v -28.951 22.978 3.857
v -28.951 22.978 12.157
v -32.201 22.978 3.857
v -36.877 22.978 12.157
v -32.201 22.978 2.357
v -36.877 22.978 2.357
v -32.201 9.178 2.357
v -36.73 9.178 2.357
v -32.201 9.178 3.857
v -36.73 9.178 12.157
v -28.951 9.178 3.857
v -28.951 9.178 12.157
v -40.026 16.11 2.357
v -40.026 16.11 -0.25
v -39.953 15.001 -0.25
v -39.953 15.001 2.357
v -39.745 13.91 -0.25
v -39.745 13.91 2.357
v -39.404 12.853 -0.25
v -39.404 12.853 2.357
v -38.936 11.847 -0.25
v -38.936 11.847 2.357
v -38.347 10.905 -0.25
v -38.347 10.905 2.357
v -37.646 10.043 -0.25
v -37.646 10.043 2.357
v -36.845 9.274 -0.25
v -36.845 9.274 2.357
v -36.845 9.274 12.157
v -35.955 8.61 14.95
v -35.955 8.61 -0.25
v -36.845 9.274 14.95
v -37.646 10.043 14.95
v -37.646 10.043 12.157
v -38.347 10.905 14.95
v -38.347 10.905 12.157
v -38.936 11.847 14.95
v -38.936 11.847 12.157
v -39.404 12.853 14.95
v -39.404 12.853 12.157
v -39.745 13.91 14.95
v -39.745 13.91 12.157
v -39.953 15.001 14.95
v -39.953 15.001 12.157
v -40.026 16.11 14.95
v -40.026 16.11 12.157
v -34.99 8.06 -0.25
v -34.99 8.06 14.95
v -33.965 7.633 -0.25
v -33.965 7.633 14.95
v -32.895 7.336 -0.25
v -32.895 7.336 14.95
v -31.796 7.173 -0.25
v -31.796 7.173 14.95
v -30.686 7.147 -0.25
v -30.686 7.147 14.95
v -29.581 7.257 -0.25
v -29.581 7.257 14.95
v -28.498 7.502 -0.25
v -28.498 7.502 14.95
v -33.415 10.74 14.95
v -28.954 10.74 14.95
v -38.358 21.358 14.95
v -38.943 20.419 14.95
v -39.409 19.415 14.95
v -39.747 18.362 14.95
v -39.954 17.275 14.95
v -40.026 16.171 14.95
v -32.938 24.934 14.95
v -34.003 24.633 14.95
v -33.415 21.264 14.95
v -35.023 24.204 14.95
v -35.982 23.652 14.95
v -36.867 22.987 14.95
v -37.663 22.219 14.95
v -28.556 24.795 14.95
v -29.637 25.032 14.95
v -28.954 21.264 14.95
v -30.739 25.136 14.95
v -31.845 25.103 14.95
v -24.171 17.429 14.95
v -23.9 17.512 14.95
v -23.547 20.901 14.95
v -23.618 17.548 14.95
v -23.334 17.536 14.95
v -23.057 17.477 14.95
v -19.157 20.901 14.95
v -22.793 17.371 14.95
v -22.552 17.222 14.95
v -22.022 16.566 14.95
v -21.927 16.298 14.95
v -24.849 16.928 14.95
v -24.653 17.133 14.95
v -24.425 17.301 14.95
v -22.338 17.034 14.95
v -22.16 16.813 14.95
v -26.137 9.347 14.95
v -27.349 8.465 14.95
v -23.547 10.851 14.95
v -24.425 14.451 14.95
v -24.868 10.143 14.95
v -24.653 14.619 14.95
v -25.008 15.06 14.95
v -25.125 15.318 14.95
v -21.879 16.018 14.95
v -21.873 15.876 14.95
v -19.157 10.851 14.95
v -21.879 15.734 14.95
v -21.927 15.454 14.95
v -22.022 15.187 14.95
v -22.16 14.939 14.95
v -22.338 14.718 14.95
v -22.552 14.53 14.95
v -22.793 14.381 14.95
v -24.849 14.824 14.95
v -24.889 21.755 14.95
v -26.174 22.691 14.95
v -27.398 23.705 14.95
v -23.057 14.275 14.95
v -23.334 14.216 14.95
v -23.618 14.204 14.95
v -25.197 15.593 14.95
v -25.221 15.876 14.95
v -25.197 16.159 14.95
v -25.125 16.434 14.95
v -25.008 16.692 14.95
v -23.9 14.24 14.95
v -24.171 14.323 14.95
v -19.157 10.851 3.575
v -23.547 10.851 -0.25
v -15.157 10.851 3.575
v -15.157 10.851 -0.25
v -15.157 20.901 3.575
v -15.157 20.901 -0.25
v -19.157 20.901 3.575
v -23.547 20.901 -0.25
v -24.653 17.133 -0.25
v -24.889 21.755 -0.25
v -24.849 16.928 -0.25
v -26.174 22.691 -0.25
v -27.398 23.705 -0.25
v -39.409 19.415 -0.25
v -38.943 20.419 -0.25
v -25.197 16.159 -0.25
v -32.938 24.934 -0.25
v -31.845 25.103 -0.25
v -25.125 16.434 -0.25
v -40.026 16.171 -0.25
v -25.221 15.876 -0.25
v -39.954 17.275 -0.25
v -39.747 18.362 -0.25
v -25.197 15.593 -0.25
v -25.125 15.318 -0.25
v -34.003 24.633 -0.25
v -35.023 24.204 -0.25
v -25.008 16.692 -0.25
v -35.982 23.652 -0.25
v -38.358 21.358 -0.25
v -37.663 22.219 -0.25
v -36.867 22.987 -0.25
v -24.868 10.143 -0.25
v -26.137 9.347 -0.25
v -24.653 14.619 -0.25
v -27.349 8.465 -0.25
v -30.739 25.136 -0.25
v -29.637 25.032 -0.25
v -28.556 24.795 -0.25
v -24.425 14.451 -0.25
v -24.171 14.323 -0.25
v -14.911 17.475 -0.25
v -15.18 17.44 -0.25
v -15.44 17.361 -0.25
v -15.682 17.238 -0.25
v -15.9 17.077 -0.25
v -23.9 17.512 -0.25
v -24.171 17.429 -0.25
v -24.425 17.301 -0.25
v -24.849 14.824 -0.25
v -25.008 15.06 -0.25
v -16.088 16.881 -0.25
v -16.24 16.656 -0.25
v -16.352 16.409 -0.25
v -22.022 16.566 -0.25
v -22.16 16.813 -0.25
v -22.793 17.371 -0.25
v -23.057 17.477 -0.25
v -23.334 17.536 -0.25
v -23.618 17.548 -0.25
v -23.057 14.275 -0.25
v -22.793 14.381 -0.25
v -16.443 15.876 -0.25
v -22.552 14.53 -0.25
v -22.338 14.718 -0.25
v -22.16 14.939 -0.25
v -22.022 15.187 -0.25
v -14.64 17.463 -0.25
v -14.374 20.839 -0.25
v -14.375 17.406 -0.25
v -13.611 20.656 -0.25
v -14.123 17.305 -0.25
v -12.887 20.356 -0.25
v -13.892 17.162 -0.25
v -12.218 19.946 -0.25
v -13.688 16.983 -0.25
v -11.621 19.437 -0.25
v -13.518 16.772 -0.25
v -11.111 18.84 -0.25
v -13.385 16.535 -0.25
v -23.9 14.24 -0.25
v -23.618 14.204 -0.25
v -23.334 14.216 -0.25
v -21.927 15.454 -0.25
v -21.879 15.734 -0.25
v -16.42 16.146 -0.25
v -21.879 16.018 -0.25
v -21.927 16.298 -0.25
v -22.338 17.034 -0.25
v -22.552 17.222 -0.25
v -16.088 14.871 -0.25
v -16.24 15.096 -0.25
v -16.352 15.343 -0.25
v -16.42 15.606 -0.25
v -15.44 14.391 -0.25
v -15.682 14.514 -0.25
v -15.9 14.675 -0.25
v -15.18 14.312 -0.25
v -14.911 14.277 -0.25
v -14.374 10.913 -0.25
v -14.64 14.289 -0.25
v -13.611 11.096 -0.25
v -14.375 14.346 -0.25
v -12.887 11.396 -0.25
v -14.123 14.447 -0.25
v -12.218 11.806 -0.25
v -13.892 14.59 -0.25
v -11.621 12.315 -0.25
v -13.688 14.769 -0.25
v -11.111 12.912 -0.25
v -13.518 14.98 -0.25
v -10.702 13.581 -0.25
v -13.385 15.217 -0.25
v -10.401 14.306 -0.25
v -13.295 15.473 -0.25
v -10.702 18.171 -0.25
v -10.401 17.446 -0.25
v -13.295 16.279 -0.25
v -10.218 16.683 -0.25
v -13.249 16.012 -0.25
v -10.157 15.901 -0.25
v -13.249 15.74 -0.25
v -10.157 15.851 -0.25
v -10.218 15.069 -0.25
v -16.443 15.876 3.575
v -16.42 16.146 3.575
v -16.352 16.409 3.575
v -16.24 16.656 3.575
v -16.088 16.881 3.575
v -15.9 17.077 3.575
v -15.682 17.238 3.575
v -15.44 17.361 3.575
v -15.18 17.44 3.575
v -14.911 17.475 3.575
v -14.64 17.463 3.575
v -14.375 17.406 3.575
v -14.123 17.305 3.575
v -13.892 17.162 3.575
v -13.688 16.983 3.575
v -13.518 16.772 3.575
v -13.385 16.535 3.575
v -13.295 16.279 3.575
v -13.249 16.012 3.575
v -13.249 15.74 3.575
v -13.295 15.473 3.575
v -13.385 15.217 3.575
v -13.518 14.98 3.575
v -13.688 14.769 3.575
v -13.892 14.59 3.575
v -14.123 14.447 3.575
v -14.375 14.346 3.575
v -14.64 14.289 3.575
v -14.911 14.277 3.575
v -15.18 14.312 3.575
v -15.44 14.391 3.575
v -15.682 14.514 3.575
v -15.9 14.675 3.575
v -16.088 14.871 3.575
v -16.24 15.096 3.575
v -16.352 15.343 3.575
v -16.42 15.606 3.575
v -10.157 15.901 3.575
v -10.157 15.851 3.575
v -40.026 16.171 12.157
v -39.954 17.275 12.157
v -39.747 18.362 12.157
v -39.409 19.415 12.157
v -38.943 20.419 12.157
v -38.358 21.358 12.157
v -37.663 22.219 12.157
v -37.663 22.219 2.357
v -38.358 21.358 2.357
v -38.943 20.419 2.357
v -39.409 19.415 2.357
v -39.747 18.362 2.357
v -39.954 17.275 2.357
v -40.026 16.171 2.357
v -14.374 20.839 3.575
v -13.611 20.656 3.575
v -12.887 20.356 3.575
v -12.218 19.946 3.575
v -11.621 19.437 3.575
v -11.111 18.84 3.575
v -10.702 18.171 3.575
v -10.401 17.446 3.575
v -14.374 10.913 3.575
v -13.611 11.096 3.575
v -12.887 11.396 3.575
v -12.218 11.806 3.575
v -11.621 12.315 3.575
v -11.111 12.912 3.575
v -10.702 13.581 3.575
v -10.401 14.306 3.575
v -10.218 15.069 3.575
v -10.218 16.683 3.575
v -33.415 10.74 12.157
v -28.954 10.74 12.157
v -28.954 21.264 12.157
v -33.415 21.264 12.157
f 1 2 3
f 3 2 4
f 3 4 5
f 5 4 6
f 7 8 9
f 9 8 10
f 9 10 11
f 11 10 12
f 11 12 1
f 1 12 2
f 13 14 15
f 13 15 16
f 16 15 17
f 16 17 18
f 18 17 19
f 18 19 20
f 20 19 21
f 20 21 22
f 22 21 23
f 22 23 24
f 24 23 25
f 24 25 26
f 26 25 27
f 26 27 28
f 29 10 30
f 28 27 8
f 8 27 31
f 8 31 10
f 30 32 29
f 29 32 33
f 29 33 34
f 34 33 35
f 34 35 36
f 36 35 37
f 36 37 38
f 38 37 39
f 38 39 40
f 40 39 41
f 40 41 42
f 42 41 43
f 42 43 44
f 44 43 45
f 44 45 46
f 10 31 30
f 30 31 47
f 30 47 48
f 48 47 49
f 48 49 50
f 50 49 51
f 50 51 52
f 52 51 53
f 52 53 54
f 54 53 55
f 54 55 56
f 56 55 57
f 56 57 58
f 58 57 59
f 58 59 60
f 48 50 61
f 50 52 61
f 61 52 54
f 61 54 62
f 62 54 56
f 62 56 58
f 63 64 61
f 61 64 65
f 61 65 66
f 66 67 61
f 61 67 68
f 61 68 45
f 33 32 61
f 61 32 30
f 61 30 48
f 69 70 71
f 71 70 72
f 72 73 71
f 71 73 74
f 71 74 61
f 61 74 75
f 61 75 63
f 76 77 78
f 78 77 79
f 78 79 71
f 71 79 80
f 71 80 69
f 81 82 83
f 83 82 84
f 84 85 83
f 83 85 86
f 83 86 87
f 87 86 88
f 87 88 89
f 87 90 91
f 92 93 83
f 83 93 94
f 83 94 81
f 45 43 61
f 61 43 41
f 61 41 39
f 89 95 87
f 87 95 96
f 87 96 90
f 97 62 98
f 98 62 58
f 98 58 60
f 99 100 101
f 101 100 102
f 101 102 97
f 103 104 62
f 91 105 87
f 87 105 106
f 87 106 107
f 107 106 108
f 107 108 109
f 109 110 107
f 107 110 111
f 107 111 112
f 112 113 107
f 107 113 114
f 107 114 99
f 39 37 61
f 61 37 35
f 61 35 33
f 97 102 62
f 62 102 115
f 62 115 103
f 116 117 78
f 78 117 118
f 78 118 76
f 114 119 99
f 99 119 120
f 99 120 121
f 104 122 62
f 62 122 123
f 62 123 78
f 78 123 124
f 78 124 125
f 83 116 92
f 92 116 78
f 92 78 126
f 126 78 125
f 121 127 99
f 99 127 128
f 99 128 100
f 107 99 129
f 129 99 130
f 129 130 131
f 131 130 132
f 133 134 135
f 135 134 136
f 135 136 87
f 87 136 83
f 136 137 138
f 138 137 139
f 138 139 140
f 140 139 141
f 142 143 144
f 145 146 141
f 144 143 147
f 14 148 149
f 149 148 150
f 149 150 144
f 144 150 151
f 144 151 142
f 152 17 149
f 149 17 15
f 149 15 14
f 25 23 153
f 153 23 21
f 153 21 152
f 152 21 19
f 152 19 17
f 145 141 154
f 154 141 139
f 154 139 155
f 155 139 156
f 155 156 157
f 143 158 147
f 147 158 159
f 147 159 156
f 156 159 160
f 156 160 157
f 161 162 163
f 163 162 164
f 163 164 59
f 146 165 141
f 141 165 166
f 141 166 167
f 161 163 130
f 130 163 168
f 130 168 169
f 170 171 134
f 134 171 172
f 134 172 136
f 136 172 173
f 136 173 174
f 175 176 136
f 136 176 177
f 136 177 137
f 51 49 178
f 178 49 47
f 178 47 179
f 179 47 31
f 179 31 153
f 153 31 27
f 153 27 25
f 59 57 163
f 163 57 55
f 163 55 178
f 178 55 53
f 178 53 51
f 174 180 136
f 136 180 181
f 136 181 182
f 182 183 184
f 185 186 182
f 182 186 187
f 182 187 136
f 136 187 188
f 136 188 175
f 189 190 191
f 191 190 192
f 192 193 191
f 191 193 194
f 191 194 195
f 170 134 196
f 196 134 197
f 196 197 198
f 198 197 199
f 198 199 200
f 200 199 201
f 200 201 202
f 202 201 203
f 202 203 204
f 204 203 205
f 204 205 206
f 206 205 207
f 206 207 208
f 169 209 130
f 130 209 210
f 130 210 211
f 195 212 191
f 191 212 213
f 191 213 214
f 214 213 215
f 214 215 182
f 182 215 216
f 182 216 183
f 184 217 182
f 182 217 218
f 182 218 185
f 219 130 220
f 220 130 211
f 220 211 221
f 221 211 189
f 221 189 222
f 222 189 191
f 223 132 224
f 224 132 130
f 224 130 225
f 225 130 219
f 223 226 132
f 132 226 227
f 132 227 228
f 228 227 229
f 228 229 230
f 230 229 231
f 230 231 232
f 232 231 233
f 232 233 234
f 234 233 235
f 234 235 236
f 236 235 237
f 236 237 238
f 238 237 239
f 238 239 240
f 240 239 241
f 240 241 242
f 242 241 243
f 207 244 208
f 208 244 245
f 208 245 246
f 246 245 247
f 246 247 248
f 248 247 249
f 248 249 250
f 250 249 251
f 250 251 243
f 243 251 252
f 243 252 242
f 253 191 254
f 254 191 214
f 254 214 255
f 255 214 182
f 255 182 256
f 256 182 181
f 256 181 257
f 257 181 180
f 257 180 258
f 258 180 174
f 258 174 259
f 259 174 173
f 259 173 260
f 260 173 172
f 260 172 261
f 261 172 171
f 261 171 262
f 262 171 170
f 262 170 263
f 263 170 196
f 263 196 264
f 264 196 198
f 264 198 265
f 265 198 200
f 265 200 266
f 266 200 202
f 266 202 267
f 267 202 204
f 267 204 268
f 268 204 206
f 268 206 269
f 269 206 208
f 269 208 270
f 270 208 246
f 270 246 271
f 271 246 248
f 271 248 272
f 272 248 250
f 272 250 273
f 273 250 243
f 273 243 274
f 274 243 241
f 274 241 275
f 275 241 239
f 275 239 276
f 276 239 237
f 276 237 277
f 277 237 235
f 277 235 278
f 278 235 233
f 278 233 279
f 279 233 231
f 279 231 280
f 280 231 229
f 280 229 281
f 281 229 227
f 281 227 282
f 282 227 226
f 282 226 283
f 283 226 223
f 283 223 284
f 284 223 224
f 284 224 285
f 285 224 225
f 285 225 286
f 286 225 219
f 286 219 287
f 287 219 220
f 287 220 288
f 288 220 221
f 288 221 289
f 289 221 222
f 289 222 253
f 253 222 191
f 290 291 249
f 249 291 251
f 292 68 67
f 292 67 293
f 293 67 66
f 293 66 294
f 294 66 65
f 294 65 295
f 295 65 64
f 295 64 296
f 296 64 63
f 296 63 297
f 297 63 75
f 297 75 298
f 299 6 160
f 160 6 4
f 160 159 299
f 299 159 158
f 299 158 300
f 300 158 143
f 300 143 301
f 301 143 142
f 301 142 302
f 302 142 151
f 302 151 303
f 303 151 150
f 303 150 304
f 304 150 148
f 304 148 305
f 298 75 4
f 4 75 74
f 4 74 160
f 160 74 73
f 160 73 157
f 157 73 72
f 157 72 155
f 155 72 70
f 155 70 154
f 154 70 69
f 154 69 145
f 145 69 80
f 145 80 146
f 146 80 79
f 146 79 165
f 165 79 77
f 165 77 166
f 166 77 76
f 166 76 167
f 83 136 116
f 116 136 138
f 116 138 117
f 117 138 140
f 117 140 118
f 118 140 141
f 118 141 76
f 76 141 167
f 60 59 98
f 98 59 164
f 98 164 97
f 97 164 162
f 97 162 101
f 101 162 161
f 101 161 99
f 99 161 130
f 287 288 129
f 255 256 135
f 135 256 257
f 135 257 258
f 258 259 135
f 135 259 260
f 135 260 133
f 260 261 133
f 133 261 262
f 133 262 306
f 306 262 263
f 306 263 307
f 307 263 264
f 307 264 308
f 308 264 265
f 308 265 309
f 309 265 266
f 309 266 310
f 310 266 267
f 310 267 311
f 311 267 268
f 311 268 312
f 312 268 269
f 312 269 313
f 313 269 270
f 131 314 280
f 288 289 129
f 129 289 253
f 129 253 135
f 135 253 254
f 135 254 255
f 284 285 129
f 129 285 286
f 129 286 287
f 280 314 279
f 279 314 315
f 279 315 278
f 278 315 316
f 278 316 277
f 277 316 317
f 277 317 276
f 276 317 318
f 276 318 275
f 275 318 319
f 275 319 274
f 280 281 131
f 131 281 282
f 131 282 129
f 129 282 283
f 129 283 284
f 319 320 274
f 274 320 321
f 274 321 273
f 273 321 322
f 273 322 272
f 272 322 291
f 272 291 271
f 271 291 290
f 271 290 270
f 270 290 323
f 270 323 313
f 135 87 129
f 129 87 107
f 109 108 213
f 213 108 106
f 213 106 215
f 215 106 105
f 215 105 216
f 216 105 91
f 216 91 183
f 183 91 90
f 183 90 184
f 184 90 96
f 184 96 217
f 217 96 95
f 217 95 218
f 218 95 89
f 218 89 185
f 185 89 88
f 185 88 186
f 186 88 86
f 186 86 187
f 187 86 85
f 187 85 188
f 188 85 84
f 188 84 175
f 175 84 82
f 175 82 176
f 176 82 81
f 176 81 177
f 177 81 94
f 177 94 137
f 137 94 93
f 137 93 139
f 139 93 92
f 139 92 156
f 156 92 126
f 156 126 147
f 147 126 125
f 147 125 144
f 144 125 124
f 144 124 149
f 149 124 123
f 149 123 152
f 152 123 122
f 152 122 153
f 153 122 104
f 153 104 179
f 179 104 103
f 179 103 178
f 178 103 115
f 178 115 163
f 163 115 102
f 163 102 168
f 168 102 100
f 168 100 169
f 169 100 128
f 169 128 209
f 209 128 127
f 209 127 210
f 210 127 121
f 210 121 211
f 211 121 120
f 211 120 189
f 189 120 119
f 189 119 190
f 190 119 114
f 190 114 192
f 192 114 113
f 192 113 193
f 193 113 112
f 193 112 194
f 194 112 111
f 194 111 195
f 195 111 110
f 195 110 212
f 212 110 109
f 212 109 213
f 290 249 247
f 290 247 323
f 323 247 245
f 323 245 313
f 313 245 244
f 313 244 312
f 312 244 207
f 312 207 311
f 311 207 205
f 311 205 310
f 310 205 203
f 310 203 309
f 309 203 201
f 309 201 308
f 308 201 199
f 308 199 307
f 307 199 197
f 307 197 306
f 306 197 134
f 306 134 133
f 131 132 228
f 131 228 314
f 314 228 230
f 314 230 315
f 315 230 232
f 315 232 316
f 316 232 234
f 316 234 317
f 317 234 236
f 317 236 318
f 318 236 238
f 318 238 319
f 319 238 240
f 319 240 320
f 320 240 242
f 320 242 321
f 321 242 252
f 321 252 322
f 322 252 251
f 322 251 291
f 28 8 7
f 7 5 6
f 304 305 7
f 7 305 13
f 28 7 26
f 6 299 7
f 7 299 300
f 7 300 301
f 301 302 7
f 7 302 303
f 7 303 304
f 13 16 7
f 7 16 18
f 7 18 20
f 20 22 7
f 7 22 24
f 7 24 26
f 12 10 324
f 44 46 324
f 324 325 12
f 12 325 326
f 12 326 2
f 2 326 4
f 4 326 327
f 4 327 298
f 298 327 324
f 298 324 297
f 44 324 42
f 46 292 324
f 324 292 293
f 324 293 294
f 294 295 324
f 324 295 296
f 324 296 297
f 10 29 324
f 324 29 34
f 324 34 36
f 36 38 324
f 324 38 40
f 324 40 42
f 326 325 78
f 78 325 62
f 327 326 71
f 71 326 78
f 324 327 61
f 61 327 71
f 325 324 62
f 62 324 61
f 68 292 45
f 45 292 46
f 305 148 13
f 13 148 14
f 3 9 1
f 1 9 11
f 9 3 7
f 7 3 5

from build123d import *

# Parameters (mm, degrees)
EXTRUDE_1_DEPTH      = 2.2
EXTRUDE_2_DEPTH      = 3.25
SKETCH_3_W           = 50
SKETCH_3_H           = 10.05
EXTRUDE_3_DEPTH      = 3.25
CUT_EXTRUDE_1_DEPTH  = 30
EXTRUDE_4_REACH      = 56.389
SKETCH_6_R           = 5.025
SKETCH_8_R           = 1.675
SKETCH_8_R_2         = 0.84
CUT_EXTRUDE_3_DEPTH  = 55
SKETCH_9_W           = 28.473000816
SKETCH_9_H           = 14.532409192
CUT_EXTRUDE_4_DEPTH  = 3
EXTRUDE_5_DEPTH      = 2.45
SKETCH_11_W          = 12.614203935
SKETCH_11_H          = 10.05
EXTRUDE_6_DEPTH      = 3
SKETCH_12_W          = 36.628466797
SKETCH_12_H          = 15.348537224
CUT_EXTRUDE_5_DEPTH  = 10
SKETCH_13_W          = 5.35
SKETCH_13_H          = 5.35
CUT_EXTRUDE_6_DEPTH  = 14
SKETCH_14_R          = 1.1
CUT_EXTRUDE_7_DEPTH  = 14
SKETCH_15_R          = 1.1
CUT_EXTRUDE_8_DEPTH  = 10
SKETCH_16_R          = 1.625
EXTRUDE_7_DEPTH      = 5.7
SKETCH_17_W          = 19.923143876
SKETCH_17_H          = 15.083058075
CUT_EXTRUDE_9_DEPTH  = 3
SKETCH_18_R          = 1.675
SKETCH_18_R_2        = 1.6
CUT_EXTRUDE_10_DEPTH = 6
CUT_EXTRUDE_11_DEPTH = 10
EXTRUDE_8_DEPTH      = 9.5
EXTRUDE_9_DEPTH      = 15.2
SKETCH_23_W          = 14.793785908
SKETCH_23_H          = 11.59723546
CUT_EXTRUDE_12_DEPTH = 9
SKETCH_25_R          = 1.6
SKETCH_25_R_2        = 1.673969756
CUT_EXTRUDE_13_DEPTH = 20
FILLET_1_R           = 5
SKETCH_26_W          = 0.925753523
SKETCH_26_H          = 16.271734405
EXTRUDE_10_DEPTH     = 15
SKETCH_27_W          = 9.8
SKETCH_27_H          = 13.8
CUT_EXTRUDE_14_DEPTH = 12
SKETCH_28_W          = 4.460954542
SKETCH_28_H          = 10.524407061
CUT_EXTRUDE_15_DEPTH = 12
SKETCH_29_W          = 0.925753523
SKETCH_29_H          = 16.271734405
CUT_EXTRUDE_16_DEPTH = 18
SKETCH_30_W          = 1.5
SKETCH_30_H          = 13.8
EXTRUDE_11_DEPTH     = 3.25


with BuildPart() as part:
    # 草图1 → 凸台-拉伸1 (new body)
    with BuildSketch(Plane.XY):
        with BuildLine():
            Line((1.539836705, 12.851012384), (15.55297303, 14.251012384))
            ThreePointArc((15.55297303, 14.251012384), (17.193415997, 16.063512384), (15.55297303, 17.876012384))
            Line((15.55297303, 17.876012384), (1.500532553, 18.901012384))
            ThreePointArc((1.500532553, 18.901012384), (0.527100583, 19.384612538), (-0.54702697, 19.551012384))
            Line((-0.54702697, 19.551012384), (-0.54702697, 20.901012384))
            Line((-0.54702697, 20.901012384), (19.51277613, 20.901012384))
            Line((19.51277613, 20.901012384), (41.45297303, 20.901012384))
            Line((41.45297303, 20.901012384), (41.45297303, 10.851012384))
            Line((41.45297303, 10.851012384), (-0.54702697, 10.851012384))
            Line((-0.54702697, 10.851012384), (-0.54702697, 12.201012384))
            ThreePointArc((-0.54702697, 12.201012384), (0.54584768, 12.367273294), (1.539836705, 12.851012384))
        make_face()
    extrude(amount=EXTRUDE_1_DEPTH)

    # 草图2 → 凸台-拉伸2 (add)
    with BuildSketch(Plane(origin=(0, 0, 0), x_dir=(-1, 0, 0), z_dir=(0, 0, -1))):
        Polygon((-19.51277613, 10.851012384), (-49.45297303, 10.851012384), (-49.45297303, 20.901012384), (-19.51277613, 20.901012384), (0.54702697, 20.901012384), (0.54702697, 10.851012384), align=None)
    extrude(amount=EXTRUDE_2_DEPTH)

    # 草图3 → 凸台-拉伸3 (add)
    with BuildSketch(Plane.XY.offset(2.2)):
        with Locations((24.45297303, 15.876012384)):
            Rectangle(SKETCH_3_W, SKETCH_3_H)
    extrude(amount=EXTRUDE_3_DEPTH)

    # 草图4 → 切除-拉伸1 (cut, symmetric)
    with BuildSketch(Plane.XY):
        with BuildLine():
            Line((-0.54702697, 19.551012384), (-2.235397712, 16.616091152))
            Line((-2.235397712, 16.616091152), (-1.110896638, 12.310548833))
            Line((-1.110896638, 12.310548833), (-0.54702697, 12.201012384))
            ThreePointArc((-0.54702697, 12.201012384), (0.54584768, 12.367273294), (1.539836705, 12.851012384))
            ThreePointArc((1.539836705, 12.851012384), (2.773180655, 15.88415254), (1.500532553, 18.901012384))
            ThreePointArc((1.500532553, 18.901012384), (0.527100583, 19.384612538), (-0.54702697, 19.551012384))
        make_face()
    extrude(amount=CUT_EXTRUDE_1_DEPTH, both=True, mode=Mode.SUBTRACT)

    # 凸台-拉伸4: up to this face of the body (flat: up to its plane)
    extrude_4_end = Plane(part.part.faces().sort_by_distance((25.407741746, 15.876338503, 5.45))[0])
    # 草图6 → 凸台-拉伸4 (add, up to the picked face)
    with BuildSketch(Plane(origin=(0, 0, -3.25), x_dir=(-1, 0, 0), z_dir=(0, 0, -1)), mode=Mode.PRIVATE) as extrude_4_sk1:
        with Locations(Location((-49.45297303, 15.876012384, 0), (0, 0, 90))):
            Circle(SKETCH_6_R)
    extrude_4_tool1 = split(extrude(extrude_4_sk1.sketch, amount=-EXTRUDE_4_REACH, mode=Mode.PRIVATE), bisect_by=extrude_4_end, keep=Keep.BOTH, mode=Mode.PRIVATE)
    add(extrude_4_tool1.solids().sort_by(Axis((49.452973, 15.876012, -3.25), (0, 0, 1)))[0])

    # 草图8 → 切除-拉伸3 (cut)
    with BuildSketch(Plane(origin=(0, 0, -3.25), x_dir=(-1, 0, 0), z_dir=(0, 0, -1))):
        with Locations((-49.45297303, 15.876012384)):
            Circle(SKETCH_8_R)
        with Locations(Location((-7.95297303, 15.856360308, 0), (0, 0, 180))):
            Circle(SKETCH_8_R_2)
    extrude(amount=-CUT_EXTRUDE_3_DEPTH, mode=Mode.SUBTRACT)

    # 草图9 → 切除-拉伸4 (cut)
    with BuildSketch(Plane(origin=(0, 0, -3.25), x_dir=(-1, 0, 0), z_dir=(0, 0, -1))):
        with Locations((-42.648638606, 15.039406696)):
            Rectangle(SKETCH_9_W, SKETCH_9_H)
    extrude(amount=-CUT_EXTRUDE_4_DEPTH, mode=Mode.SUBTRACT)

    # 草图10 → 凸台-拉伸5 (add)
    with BuildSketch(Plane(origin=(0, 0, 2.2), x_dir=(-1, 0, 0), z_dir=(0, 0, -1))):
        with BuildLine():
            Line((-49.45297303, 20.901012384), (-38.466384114, 20.901012384))
            Line((-38.466384114, 20.901012384), (-38.466384114, 10.851012384))
            Line((-38.466384114, 10.851012384), (-49.45297303, 10.851012384))
            ThreePointArc((-49.45297303, 10.851012384), (-46.217908976, 15.876012384), (-49.45297303, 20.901012384))
        make_face()
    extrude(amount=EXTRUDE_5_DEPTH)

    # 草图11 → 凸台-拉伸6 (add)
    with BuildSketch(Plane(origin=(0, 0, -3.25), x_dir=(-1, 0, 0), z_dir=(0, 0, -1))):
        with Locations((-32.625453647, 15.876012384)):
            Rectangle(SKETCH_11_W, SKETCH_11_H)
    extrude(amount=-EXTRUDE_6_DEPTH)

    # 草图12 → 切除-拉伸5 (cut)
    with BuildSketch(Plane(origin=(0, 0, -3.25), x_dir=(-1, 0, 0), z_dir=(0, 0, -1))):
        with Locations((-5.618322216, 15.103365543)):
            Rectangle(SKETCH_12_W, SKETCH_12_H)
    extrude(amount=-CUT_EXTRUDE_5_DEPTH, mode=Mode.SUBTRACT)

    # 草图13 → 切除-拉伸6 (cut)
    with BuildSketch(Plane.ZY.offset(-23.932555614)):
        with Locations((1.1, 16.124405573)):
            Rectangle(SKETCH_13_W, SKETCH_13_H)
    extrude(amount=-CUT_EXTRUDE_6_DEPTH, mode=Mode.SUBTRACT)

    # 草图14 → 切除-拉伸7 (cut)
    with BuildSketch(Plane(origin=(0, 20.901012384, 0), x_dir=(1, 0, 0), z_dir=(0, 1, 0))):
        with Locations(Location((30.538219594, -1.1, 0), (0, 0, 270))):
            Circle(SKETCH_14_R)
    extrude(amount=-CUT_EXTRUDE_7_DEPTH, mode=Mode.SUBTRACT)

    # 草图15 → 切除-拉伸8 (cut)
    with BuildSketch(Plane.XY.offset(5.45)):
        with Locations((36.879929969, 15.882801083)):
            Circle(SKETCH_15_R)
    extrude(amount=-CUT_EXTRUDE_8_DEPTH, mode=Mode.SUBTRACT)

    # 草图16 → 凸台-拉伸7 (add)
    with BuildSketch(Plane(origin=(0, 0, -0.25), x_dir=(-1, 0, 0), z_dir=(0, 0, -1))):
        with BuildLine():
            Line((-49.45297303, 20.901012384), (23.54702697, 20.901012384))
            ThreePointArc((23.54702697, 20.901012384), (28.57202697, 15.876012384), (23.54702697, 10.851012384))
            Line((23.54702697, 10.851012384), (-49.45297303, 10.851012384))
            Line((-49.45297303, 10.851012384), (-49.45297303, 20.901012384))
        make_face()
        with Locations((23.54702697, 15.876012384)):
            Circle(SKETCH_16_R, mode=Mode.SUBTRACT)
    extrude(amount=-EXTRUDE_7_DEPTH)

    # 草图17 → 切除-拉伸9 (cut)
    with BuildSketch(Plane(origin=(0, 0, -3.25), x_dir=(-1, 0, 0), z_dir=(0, 0, -1))):
        with Locations((-33.178239607, 16.007261263)):
            Rectangle(SKETCH_17_W, SKETCH_17_H)
    extrude(amount=-CUT_EXTRUDE_9_DEPTH, mode=Mode.SUBTRACT)

    # 草图18 → 切除-拉伸10 (cut)
    with BuildSketch(Plane(origin=(0, 0, -0.25), x_dir=(-1, 0, 0), z_dir=(0, 0, -1))):
        with Locations(Location((-49.45297303, 15.876012384, 0), (0, 0, 180))):
            Circle(SKETCH_18_R)
        with Locations((14.84318256, 15.876012384)):
            Circle(SKETCH_18_R_2)
        with BuildLine():
            Line((-31.661597205, 17.303258867), (8.461046927, 17.303258867))
            ThreePointArc((8.461046927, 17.303258867), (9.88829341, 15.876012384), (8.461046927, 14.448765901))
            Line((8.461046927, 14.448765901), (-31.661597205, 14.448765901))
            ThreePointArc((-31.661597205, 14.448765901), (-33.088843687, 15.876012384), (-31.661597205, 17.303258867))
        make_face()
    extrude(amount=-CUT_EXTRUDE_10_DEPTH, mode=Mode.SUBTRACT)

    # 草图19 → 切除-拉伸11 (cut)
    with BuildSketch(Plane(origin=(0, 0, -0.25), x_dir=(-1, 0, 0), z_dir=(0, 0, -1))):
        Polygon((12.697516125, 20.901012384), (-60.999534113, 39.375054119), (-58.738783937, -10.22846445), (12.697516125, 10.851012384), (10.156545193, 10.851012384), (10.156545193, 20.901012384), align=None)
    extrude(amount=-CUT_EXTRUDE_11_DEPTH, mode=Mode.SUBTRACT)

    # 草图21 → 凸台-拉伸8 (add)
    with BuildSketch(Plane.XY.offset(5.45)):
        with BuildLine():
            Line((-23.54702697, 20.901012384), (-12.697516125, 20.901012384))
            ThreePointArc((-12.697516125, 20.901012384), (-9.87974938, 15.876012384), (-12.697516125, 10.851012384))
            Line((-12.697516125, 10.851012384), (-23.54702697, 10.851012384))
            ThreePointArc((-23.54702697, 10.851012384), (-28.57202697, 15.876012384), (-23.54702697, 20.901012384))
        make_face()
    extrude(amount=EXTRUDE_8_DEPTH)

    # 草图22 → 凸台-拉伸9 (add)
    with BuildSketch(Plane(origin=(0, 0, -0.25), x_dir=(-1, 0, 0), z_dir=(0, 0, -1))):
        with BuildLine():
            Line((23.54702697, 20.901012384), (26.601137036, 16.368267617))
            Line((26.601137036, 16.368267617), (23.54702697, 10.851012384))
            ThreePointArc((23.54702697, 10.851012384), (26.137365286, 9.34674893), (28.497704507, 7.502444211))
            ThreePointArc((28.497704507, 7.502444211), (40.025732832, 16.109516943), (28.556434004, 24.794695265))
            ThreePointArc((28.556434004, 24.794695265), (26.173914365, 22.690658492), (23.54702697, 20.901012384))
        make_face()
    extrude(amount=-EXTRUDE_9_DEPTH)

    # 草图23 → 切除-拉伸12 (cut, symmetric)
    with BuildSketch(Plane(origin=(-10.156545193, 0, 0), x_dir=(0, 0, -1), z_dir=(1, 0, 0))):
        with Locations((-10.971714959, 15.6975909)):
            Rectangle(SKETCH_23_W, SKETCH_23_H)
    extrude(amount=CUT_EXTRUDE_12_DEPTH, both=True, mode=Mode.SUBTRACT)

    # 草图25 → 切除-拉伸13 (cut)
    with BuildSketch(Plane(origin=(0, 0, -0.25), x_dir=(-1, 0, 0), z_dir=(0, 0, -1))):
        with Locations((14.84318256, 15.876012384)):
            Circle(SKETCH_25_R)
        with Locations((23.54702697, 15.876012384)):
            Circle(SKETCH_25_R_2)
    extrude(amount=-CUT_EXTRUDE_13_DEPTH, mode=Mode.SUBTRACT)

    # 圆角1
    fillet_1_edges = [part.edges().sort_by_distance(p)[0] for p in [
        (-10.156545193, 10.851012384, 1.662411002),
        (-10.156545193, 20.901012384, 1.662411002),
    ]]
    fillet(fillet_1_edges, radius=FILLET_1_R)

    # 草图26 → 凸台-拉伸10 (add)
    with BuildSketch(Plane(origin=(0, 0, -0.25), x_dir=(-1, 0, 0), z_dir=(0, 0, -1))):
        with Locations((40.488609594, 16.108824789)):
            Rectangle(SKETCH_26_W, SKETCH_26_H)
    extrude(amount=-EXTRUDE_10_DEPTH)

    # 草图27 → 切除-拉伸14 (cut)
    with BuildSketch(Plane.ZY.offset(40.951486355)):
        with Locations((7.257156835, 16.078298666)):
            Rectangle(SKETCH_27_W, SKETCH_27_H)
    extrude(amount=-CUT_EXTRUDE_14_DEPTH, mode=Mode.SUBTRACT)

    # 草图28 → 切除-拉伸15 (cut)
    with BuildSketch(Plane(origin=(0, 0, 12.157156835), x_dir=(-1, 0, 0), z_dir=(0, 0, -1))):
        with Locations((31.184244341, 16.001788247)):
            Rectangle(SKETCH_28_W, SKETCH_28_H)
    extrude(amount=-CUT_EXTRUDE_15_DEPTH, mode=Mode.SUBTRACT)

    # 草图29 → 切除-拉伸16 (cut)
    with BuildSketch(Plane(origin=(0, 0, -0.25), x_dir=(-1, 0, 0), z_dir=(0, 0, -1))):
        with Locations((40.488609594, 16.108824789)):
            Rectangle(SKETCH_29_W, SKETCH_29_H)
    extrude(amount=-CUT_EXTRUDE_16_DEPTH, mode=Mode.SUBTRACT)

    # 草图30 → 凸台-拉伸11 (add)
    with BuildSketch(Plane.ZY.offset(28.951486355)):
        with Locations((3.107156835, 16.078298666)):
            Rectangle(SKETCH_30_W, SKETCH_30_H)
    extrude(amount=EXTRUDE_11_DEPTH)


solid = part.part
